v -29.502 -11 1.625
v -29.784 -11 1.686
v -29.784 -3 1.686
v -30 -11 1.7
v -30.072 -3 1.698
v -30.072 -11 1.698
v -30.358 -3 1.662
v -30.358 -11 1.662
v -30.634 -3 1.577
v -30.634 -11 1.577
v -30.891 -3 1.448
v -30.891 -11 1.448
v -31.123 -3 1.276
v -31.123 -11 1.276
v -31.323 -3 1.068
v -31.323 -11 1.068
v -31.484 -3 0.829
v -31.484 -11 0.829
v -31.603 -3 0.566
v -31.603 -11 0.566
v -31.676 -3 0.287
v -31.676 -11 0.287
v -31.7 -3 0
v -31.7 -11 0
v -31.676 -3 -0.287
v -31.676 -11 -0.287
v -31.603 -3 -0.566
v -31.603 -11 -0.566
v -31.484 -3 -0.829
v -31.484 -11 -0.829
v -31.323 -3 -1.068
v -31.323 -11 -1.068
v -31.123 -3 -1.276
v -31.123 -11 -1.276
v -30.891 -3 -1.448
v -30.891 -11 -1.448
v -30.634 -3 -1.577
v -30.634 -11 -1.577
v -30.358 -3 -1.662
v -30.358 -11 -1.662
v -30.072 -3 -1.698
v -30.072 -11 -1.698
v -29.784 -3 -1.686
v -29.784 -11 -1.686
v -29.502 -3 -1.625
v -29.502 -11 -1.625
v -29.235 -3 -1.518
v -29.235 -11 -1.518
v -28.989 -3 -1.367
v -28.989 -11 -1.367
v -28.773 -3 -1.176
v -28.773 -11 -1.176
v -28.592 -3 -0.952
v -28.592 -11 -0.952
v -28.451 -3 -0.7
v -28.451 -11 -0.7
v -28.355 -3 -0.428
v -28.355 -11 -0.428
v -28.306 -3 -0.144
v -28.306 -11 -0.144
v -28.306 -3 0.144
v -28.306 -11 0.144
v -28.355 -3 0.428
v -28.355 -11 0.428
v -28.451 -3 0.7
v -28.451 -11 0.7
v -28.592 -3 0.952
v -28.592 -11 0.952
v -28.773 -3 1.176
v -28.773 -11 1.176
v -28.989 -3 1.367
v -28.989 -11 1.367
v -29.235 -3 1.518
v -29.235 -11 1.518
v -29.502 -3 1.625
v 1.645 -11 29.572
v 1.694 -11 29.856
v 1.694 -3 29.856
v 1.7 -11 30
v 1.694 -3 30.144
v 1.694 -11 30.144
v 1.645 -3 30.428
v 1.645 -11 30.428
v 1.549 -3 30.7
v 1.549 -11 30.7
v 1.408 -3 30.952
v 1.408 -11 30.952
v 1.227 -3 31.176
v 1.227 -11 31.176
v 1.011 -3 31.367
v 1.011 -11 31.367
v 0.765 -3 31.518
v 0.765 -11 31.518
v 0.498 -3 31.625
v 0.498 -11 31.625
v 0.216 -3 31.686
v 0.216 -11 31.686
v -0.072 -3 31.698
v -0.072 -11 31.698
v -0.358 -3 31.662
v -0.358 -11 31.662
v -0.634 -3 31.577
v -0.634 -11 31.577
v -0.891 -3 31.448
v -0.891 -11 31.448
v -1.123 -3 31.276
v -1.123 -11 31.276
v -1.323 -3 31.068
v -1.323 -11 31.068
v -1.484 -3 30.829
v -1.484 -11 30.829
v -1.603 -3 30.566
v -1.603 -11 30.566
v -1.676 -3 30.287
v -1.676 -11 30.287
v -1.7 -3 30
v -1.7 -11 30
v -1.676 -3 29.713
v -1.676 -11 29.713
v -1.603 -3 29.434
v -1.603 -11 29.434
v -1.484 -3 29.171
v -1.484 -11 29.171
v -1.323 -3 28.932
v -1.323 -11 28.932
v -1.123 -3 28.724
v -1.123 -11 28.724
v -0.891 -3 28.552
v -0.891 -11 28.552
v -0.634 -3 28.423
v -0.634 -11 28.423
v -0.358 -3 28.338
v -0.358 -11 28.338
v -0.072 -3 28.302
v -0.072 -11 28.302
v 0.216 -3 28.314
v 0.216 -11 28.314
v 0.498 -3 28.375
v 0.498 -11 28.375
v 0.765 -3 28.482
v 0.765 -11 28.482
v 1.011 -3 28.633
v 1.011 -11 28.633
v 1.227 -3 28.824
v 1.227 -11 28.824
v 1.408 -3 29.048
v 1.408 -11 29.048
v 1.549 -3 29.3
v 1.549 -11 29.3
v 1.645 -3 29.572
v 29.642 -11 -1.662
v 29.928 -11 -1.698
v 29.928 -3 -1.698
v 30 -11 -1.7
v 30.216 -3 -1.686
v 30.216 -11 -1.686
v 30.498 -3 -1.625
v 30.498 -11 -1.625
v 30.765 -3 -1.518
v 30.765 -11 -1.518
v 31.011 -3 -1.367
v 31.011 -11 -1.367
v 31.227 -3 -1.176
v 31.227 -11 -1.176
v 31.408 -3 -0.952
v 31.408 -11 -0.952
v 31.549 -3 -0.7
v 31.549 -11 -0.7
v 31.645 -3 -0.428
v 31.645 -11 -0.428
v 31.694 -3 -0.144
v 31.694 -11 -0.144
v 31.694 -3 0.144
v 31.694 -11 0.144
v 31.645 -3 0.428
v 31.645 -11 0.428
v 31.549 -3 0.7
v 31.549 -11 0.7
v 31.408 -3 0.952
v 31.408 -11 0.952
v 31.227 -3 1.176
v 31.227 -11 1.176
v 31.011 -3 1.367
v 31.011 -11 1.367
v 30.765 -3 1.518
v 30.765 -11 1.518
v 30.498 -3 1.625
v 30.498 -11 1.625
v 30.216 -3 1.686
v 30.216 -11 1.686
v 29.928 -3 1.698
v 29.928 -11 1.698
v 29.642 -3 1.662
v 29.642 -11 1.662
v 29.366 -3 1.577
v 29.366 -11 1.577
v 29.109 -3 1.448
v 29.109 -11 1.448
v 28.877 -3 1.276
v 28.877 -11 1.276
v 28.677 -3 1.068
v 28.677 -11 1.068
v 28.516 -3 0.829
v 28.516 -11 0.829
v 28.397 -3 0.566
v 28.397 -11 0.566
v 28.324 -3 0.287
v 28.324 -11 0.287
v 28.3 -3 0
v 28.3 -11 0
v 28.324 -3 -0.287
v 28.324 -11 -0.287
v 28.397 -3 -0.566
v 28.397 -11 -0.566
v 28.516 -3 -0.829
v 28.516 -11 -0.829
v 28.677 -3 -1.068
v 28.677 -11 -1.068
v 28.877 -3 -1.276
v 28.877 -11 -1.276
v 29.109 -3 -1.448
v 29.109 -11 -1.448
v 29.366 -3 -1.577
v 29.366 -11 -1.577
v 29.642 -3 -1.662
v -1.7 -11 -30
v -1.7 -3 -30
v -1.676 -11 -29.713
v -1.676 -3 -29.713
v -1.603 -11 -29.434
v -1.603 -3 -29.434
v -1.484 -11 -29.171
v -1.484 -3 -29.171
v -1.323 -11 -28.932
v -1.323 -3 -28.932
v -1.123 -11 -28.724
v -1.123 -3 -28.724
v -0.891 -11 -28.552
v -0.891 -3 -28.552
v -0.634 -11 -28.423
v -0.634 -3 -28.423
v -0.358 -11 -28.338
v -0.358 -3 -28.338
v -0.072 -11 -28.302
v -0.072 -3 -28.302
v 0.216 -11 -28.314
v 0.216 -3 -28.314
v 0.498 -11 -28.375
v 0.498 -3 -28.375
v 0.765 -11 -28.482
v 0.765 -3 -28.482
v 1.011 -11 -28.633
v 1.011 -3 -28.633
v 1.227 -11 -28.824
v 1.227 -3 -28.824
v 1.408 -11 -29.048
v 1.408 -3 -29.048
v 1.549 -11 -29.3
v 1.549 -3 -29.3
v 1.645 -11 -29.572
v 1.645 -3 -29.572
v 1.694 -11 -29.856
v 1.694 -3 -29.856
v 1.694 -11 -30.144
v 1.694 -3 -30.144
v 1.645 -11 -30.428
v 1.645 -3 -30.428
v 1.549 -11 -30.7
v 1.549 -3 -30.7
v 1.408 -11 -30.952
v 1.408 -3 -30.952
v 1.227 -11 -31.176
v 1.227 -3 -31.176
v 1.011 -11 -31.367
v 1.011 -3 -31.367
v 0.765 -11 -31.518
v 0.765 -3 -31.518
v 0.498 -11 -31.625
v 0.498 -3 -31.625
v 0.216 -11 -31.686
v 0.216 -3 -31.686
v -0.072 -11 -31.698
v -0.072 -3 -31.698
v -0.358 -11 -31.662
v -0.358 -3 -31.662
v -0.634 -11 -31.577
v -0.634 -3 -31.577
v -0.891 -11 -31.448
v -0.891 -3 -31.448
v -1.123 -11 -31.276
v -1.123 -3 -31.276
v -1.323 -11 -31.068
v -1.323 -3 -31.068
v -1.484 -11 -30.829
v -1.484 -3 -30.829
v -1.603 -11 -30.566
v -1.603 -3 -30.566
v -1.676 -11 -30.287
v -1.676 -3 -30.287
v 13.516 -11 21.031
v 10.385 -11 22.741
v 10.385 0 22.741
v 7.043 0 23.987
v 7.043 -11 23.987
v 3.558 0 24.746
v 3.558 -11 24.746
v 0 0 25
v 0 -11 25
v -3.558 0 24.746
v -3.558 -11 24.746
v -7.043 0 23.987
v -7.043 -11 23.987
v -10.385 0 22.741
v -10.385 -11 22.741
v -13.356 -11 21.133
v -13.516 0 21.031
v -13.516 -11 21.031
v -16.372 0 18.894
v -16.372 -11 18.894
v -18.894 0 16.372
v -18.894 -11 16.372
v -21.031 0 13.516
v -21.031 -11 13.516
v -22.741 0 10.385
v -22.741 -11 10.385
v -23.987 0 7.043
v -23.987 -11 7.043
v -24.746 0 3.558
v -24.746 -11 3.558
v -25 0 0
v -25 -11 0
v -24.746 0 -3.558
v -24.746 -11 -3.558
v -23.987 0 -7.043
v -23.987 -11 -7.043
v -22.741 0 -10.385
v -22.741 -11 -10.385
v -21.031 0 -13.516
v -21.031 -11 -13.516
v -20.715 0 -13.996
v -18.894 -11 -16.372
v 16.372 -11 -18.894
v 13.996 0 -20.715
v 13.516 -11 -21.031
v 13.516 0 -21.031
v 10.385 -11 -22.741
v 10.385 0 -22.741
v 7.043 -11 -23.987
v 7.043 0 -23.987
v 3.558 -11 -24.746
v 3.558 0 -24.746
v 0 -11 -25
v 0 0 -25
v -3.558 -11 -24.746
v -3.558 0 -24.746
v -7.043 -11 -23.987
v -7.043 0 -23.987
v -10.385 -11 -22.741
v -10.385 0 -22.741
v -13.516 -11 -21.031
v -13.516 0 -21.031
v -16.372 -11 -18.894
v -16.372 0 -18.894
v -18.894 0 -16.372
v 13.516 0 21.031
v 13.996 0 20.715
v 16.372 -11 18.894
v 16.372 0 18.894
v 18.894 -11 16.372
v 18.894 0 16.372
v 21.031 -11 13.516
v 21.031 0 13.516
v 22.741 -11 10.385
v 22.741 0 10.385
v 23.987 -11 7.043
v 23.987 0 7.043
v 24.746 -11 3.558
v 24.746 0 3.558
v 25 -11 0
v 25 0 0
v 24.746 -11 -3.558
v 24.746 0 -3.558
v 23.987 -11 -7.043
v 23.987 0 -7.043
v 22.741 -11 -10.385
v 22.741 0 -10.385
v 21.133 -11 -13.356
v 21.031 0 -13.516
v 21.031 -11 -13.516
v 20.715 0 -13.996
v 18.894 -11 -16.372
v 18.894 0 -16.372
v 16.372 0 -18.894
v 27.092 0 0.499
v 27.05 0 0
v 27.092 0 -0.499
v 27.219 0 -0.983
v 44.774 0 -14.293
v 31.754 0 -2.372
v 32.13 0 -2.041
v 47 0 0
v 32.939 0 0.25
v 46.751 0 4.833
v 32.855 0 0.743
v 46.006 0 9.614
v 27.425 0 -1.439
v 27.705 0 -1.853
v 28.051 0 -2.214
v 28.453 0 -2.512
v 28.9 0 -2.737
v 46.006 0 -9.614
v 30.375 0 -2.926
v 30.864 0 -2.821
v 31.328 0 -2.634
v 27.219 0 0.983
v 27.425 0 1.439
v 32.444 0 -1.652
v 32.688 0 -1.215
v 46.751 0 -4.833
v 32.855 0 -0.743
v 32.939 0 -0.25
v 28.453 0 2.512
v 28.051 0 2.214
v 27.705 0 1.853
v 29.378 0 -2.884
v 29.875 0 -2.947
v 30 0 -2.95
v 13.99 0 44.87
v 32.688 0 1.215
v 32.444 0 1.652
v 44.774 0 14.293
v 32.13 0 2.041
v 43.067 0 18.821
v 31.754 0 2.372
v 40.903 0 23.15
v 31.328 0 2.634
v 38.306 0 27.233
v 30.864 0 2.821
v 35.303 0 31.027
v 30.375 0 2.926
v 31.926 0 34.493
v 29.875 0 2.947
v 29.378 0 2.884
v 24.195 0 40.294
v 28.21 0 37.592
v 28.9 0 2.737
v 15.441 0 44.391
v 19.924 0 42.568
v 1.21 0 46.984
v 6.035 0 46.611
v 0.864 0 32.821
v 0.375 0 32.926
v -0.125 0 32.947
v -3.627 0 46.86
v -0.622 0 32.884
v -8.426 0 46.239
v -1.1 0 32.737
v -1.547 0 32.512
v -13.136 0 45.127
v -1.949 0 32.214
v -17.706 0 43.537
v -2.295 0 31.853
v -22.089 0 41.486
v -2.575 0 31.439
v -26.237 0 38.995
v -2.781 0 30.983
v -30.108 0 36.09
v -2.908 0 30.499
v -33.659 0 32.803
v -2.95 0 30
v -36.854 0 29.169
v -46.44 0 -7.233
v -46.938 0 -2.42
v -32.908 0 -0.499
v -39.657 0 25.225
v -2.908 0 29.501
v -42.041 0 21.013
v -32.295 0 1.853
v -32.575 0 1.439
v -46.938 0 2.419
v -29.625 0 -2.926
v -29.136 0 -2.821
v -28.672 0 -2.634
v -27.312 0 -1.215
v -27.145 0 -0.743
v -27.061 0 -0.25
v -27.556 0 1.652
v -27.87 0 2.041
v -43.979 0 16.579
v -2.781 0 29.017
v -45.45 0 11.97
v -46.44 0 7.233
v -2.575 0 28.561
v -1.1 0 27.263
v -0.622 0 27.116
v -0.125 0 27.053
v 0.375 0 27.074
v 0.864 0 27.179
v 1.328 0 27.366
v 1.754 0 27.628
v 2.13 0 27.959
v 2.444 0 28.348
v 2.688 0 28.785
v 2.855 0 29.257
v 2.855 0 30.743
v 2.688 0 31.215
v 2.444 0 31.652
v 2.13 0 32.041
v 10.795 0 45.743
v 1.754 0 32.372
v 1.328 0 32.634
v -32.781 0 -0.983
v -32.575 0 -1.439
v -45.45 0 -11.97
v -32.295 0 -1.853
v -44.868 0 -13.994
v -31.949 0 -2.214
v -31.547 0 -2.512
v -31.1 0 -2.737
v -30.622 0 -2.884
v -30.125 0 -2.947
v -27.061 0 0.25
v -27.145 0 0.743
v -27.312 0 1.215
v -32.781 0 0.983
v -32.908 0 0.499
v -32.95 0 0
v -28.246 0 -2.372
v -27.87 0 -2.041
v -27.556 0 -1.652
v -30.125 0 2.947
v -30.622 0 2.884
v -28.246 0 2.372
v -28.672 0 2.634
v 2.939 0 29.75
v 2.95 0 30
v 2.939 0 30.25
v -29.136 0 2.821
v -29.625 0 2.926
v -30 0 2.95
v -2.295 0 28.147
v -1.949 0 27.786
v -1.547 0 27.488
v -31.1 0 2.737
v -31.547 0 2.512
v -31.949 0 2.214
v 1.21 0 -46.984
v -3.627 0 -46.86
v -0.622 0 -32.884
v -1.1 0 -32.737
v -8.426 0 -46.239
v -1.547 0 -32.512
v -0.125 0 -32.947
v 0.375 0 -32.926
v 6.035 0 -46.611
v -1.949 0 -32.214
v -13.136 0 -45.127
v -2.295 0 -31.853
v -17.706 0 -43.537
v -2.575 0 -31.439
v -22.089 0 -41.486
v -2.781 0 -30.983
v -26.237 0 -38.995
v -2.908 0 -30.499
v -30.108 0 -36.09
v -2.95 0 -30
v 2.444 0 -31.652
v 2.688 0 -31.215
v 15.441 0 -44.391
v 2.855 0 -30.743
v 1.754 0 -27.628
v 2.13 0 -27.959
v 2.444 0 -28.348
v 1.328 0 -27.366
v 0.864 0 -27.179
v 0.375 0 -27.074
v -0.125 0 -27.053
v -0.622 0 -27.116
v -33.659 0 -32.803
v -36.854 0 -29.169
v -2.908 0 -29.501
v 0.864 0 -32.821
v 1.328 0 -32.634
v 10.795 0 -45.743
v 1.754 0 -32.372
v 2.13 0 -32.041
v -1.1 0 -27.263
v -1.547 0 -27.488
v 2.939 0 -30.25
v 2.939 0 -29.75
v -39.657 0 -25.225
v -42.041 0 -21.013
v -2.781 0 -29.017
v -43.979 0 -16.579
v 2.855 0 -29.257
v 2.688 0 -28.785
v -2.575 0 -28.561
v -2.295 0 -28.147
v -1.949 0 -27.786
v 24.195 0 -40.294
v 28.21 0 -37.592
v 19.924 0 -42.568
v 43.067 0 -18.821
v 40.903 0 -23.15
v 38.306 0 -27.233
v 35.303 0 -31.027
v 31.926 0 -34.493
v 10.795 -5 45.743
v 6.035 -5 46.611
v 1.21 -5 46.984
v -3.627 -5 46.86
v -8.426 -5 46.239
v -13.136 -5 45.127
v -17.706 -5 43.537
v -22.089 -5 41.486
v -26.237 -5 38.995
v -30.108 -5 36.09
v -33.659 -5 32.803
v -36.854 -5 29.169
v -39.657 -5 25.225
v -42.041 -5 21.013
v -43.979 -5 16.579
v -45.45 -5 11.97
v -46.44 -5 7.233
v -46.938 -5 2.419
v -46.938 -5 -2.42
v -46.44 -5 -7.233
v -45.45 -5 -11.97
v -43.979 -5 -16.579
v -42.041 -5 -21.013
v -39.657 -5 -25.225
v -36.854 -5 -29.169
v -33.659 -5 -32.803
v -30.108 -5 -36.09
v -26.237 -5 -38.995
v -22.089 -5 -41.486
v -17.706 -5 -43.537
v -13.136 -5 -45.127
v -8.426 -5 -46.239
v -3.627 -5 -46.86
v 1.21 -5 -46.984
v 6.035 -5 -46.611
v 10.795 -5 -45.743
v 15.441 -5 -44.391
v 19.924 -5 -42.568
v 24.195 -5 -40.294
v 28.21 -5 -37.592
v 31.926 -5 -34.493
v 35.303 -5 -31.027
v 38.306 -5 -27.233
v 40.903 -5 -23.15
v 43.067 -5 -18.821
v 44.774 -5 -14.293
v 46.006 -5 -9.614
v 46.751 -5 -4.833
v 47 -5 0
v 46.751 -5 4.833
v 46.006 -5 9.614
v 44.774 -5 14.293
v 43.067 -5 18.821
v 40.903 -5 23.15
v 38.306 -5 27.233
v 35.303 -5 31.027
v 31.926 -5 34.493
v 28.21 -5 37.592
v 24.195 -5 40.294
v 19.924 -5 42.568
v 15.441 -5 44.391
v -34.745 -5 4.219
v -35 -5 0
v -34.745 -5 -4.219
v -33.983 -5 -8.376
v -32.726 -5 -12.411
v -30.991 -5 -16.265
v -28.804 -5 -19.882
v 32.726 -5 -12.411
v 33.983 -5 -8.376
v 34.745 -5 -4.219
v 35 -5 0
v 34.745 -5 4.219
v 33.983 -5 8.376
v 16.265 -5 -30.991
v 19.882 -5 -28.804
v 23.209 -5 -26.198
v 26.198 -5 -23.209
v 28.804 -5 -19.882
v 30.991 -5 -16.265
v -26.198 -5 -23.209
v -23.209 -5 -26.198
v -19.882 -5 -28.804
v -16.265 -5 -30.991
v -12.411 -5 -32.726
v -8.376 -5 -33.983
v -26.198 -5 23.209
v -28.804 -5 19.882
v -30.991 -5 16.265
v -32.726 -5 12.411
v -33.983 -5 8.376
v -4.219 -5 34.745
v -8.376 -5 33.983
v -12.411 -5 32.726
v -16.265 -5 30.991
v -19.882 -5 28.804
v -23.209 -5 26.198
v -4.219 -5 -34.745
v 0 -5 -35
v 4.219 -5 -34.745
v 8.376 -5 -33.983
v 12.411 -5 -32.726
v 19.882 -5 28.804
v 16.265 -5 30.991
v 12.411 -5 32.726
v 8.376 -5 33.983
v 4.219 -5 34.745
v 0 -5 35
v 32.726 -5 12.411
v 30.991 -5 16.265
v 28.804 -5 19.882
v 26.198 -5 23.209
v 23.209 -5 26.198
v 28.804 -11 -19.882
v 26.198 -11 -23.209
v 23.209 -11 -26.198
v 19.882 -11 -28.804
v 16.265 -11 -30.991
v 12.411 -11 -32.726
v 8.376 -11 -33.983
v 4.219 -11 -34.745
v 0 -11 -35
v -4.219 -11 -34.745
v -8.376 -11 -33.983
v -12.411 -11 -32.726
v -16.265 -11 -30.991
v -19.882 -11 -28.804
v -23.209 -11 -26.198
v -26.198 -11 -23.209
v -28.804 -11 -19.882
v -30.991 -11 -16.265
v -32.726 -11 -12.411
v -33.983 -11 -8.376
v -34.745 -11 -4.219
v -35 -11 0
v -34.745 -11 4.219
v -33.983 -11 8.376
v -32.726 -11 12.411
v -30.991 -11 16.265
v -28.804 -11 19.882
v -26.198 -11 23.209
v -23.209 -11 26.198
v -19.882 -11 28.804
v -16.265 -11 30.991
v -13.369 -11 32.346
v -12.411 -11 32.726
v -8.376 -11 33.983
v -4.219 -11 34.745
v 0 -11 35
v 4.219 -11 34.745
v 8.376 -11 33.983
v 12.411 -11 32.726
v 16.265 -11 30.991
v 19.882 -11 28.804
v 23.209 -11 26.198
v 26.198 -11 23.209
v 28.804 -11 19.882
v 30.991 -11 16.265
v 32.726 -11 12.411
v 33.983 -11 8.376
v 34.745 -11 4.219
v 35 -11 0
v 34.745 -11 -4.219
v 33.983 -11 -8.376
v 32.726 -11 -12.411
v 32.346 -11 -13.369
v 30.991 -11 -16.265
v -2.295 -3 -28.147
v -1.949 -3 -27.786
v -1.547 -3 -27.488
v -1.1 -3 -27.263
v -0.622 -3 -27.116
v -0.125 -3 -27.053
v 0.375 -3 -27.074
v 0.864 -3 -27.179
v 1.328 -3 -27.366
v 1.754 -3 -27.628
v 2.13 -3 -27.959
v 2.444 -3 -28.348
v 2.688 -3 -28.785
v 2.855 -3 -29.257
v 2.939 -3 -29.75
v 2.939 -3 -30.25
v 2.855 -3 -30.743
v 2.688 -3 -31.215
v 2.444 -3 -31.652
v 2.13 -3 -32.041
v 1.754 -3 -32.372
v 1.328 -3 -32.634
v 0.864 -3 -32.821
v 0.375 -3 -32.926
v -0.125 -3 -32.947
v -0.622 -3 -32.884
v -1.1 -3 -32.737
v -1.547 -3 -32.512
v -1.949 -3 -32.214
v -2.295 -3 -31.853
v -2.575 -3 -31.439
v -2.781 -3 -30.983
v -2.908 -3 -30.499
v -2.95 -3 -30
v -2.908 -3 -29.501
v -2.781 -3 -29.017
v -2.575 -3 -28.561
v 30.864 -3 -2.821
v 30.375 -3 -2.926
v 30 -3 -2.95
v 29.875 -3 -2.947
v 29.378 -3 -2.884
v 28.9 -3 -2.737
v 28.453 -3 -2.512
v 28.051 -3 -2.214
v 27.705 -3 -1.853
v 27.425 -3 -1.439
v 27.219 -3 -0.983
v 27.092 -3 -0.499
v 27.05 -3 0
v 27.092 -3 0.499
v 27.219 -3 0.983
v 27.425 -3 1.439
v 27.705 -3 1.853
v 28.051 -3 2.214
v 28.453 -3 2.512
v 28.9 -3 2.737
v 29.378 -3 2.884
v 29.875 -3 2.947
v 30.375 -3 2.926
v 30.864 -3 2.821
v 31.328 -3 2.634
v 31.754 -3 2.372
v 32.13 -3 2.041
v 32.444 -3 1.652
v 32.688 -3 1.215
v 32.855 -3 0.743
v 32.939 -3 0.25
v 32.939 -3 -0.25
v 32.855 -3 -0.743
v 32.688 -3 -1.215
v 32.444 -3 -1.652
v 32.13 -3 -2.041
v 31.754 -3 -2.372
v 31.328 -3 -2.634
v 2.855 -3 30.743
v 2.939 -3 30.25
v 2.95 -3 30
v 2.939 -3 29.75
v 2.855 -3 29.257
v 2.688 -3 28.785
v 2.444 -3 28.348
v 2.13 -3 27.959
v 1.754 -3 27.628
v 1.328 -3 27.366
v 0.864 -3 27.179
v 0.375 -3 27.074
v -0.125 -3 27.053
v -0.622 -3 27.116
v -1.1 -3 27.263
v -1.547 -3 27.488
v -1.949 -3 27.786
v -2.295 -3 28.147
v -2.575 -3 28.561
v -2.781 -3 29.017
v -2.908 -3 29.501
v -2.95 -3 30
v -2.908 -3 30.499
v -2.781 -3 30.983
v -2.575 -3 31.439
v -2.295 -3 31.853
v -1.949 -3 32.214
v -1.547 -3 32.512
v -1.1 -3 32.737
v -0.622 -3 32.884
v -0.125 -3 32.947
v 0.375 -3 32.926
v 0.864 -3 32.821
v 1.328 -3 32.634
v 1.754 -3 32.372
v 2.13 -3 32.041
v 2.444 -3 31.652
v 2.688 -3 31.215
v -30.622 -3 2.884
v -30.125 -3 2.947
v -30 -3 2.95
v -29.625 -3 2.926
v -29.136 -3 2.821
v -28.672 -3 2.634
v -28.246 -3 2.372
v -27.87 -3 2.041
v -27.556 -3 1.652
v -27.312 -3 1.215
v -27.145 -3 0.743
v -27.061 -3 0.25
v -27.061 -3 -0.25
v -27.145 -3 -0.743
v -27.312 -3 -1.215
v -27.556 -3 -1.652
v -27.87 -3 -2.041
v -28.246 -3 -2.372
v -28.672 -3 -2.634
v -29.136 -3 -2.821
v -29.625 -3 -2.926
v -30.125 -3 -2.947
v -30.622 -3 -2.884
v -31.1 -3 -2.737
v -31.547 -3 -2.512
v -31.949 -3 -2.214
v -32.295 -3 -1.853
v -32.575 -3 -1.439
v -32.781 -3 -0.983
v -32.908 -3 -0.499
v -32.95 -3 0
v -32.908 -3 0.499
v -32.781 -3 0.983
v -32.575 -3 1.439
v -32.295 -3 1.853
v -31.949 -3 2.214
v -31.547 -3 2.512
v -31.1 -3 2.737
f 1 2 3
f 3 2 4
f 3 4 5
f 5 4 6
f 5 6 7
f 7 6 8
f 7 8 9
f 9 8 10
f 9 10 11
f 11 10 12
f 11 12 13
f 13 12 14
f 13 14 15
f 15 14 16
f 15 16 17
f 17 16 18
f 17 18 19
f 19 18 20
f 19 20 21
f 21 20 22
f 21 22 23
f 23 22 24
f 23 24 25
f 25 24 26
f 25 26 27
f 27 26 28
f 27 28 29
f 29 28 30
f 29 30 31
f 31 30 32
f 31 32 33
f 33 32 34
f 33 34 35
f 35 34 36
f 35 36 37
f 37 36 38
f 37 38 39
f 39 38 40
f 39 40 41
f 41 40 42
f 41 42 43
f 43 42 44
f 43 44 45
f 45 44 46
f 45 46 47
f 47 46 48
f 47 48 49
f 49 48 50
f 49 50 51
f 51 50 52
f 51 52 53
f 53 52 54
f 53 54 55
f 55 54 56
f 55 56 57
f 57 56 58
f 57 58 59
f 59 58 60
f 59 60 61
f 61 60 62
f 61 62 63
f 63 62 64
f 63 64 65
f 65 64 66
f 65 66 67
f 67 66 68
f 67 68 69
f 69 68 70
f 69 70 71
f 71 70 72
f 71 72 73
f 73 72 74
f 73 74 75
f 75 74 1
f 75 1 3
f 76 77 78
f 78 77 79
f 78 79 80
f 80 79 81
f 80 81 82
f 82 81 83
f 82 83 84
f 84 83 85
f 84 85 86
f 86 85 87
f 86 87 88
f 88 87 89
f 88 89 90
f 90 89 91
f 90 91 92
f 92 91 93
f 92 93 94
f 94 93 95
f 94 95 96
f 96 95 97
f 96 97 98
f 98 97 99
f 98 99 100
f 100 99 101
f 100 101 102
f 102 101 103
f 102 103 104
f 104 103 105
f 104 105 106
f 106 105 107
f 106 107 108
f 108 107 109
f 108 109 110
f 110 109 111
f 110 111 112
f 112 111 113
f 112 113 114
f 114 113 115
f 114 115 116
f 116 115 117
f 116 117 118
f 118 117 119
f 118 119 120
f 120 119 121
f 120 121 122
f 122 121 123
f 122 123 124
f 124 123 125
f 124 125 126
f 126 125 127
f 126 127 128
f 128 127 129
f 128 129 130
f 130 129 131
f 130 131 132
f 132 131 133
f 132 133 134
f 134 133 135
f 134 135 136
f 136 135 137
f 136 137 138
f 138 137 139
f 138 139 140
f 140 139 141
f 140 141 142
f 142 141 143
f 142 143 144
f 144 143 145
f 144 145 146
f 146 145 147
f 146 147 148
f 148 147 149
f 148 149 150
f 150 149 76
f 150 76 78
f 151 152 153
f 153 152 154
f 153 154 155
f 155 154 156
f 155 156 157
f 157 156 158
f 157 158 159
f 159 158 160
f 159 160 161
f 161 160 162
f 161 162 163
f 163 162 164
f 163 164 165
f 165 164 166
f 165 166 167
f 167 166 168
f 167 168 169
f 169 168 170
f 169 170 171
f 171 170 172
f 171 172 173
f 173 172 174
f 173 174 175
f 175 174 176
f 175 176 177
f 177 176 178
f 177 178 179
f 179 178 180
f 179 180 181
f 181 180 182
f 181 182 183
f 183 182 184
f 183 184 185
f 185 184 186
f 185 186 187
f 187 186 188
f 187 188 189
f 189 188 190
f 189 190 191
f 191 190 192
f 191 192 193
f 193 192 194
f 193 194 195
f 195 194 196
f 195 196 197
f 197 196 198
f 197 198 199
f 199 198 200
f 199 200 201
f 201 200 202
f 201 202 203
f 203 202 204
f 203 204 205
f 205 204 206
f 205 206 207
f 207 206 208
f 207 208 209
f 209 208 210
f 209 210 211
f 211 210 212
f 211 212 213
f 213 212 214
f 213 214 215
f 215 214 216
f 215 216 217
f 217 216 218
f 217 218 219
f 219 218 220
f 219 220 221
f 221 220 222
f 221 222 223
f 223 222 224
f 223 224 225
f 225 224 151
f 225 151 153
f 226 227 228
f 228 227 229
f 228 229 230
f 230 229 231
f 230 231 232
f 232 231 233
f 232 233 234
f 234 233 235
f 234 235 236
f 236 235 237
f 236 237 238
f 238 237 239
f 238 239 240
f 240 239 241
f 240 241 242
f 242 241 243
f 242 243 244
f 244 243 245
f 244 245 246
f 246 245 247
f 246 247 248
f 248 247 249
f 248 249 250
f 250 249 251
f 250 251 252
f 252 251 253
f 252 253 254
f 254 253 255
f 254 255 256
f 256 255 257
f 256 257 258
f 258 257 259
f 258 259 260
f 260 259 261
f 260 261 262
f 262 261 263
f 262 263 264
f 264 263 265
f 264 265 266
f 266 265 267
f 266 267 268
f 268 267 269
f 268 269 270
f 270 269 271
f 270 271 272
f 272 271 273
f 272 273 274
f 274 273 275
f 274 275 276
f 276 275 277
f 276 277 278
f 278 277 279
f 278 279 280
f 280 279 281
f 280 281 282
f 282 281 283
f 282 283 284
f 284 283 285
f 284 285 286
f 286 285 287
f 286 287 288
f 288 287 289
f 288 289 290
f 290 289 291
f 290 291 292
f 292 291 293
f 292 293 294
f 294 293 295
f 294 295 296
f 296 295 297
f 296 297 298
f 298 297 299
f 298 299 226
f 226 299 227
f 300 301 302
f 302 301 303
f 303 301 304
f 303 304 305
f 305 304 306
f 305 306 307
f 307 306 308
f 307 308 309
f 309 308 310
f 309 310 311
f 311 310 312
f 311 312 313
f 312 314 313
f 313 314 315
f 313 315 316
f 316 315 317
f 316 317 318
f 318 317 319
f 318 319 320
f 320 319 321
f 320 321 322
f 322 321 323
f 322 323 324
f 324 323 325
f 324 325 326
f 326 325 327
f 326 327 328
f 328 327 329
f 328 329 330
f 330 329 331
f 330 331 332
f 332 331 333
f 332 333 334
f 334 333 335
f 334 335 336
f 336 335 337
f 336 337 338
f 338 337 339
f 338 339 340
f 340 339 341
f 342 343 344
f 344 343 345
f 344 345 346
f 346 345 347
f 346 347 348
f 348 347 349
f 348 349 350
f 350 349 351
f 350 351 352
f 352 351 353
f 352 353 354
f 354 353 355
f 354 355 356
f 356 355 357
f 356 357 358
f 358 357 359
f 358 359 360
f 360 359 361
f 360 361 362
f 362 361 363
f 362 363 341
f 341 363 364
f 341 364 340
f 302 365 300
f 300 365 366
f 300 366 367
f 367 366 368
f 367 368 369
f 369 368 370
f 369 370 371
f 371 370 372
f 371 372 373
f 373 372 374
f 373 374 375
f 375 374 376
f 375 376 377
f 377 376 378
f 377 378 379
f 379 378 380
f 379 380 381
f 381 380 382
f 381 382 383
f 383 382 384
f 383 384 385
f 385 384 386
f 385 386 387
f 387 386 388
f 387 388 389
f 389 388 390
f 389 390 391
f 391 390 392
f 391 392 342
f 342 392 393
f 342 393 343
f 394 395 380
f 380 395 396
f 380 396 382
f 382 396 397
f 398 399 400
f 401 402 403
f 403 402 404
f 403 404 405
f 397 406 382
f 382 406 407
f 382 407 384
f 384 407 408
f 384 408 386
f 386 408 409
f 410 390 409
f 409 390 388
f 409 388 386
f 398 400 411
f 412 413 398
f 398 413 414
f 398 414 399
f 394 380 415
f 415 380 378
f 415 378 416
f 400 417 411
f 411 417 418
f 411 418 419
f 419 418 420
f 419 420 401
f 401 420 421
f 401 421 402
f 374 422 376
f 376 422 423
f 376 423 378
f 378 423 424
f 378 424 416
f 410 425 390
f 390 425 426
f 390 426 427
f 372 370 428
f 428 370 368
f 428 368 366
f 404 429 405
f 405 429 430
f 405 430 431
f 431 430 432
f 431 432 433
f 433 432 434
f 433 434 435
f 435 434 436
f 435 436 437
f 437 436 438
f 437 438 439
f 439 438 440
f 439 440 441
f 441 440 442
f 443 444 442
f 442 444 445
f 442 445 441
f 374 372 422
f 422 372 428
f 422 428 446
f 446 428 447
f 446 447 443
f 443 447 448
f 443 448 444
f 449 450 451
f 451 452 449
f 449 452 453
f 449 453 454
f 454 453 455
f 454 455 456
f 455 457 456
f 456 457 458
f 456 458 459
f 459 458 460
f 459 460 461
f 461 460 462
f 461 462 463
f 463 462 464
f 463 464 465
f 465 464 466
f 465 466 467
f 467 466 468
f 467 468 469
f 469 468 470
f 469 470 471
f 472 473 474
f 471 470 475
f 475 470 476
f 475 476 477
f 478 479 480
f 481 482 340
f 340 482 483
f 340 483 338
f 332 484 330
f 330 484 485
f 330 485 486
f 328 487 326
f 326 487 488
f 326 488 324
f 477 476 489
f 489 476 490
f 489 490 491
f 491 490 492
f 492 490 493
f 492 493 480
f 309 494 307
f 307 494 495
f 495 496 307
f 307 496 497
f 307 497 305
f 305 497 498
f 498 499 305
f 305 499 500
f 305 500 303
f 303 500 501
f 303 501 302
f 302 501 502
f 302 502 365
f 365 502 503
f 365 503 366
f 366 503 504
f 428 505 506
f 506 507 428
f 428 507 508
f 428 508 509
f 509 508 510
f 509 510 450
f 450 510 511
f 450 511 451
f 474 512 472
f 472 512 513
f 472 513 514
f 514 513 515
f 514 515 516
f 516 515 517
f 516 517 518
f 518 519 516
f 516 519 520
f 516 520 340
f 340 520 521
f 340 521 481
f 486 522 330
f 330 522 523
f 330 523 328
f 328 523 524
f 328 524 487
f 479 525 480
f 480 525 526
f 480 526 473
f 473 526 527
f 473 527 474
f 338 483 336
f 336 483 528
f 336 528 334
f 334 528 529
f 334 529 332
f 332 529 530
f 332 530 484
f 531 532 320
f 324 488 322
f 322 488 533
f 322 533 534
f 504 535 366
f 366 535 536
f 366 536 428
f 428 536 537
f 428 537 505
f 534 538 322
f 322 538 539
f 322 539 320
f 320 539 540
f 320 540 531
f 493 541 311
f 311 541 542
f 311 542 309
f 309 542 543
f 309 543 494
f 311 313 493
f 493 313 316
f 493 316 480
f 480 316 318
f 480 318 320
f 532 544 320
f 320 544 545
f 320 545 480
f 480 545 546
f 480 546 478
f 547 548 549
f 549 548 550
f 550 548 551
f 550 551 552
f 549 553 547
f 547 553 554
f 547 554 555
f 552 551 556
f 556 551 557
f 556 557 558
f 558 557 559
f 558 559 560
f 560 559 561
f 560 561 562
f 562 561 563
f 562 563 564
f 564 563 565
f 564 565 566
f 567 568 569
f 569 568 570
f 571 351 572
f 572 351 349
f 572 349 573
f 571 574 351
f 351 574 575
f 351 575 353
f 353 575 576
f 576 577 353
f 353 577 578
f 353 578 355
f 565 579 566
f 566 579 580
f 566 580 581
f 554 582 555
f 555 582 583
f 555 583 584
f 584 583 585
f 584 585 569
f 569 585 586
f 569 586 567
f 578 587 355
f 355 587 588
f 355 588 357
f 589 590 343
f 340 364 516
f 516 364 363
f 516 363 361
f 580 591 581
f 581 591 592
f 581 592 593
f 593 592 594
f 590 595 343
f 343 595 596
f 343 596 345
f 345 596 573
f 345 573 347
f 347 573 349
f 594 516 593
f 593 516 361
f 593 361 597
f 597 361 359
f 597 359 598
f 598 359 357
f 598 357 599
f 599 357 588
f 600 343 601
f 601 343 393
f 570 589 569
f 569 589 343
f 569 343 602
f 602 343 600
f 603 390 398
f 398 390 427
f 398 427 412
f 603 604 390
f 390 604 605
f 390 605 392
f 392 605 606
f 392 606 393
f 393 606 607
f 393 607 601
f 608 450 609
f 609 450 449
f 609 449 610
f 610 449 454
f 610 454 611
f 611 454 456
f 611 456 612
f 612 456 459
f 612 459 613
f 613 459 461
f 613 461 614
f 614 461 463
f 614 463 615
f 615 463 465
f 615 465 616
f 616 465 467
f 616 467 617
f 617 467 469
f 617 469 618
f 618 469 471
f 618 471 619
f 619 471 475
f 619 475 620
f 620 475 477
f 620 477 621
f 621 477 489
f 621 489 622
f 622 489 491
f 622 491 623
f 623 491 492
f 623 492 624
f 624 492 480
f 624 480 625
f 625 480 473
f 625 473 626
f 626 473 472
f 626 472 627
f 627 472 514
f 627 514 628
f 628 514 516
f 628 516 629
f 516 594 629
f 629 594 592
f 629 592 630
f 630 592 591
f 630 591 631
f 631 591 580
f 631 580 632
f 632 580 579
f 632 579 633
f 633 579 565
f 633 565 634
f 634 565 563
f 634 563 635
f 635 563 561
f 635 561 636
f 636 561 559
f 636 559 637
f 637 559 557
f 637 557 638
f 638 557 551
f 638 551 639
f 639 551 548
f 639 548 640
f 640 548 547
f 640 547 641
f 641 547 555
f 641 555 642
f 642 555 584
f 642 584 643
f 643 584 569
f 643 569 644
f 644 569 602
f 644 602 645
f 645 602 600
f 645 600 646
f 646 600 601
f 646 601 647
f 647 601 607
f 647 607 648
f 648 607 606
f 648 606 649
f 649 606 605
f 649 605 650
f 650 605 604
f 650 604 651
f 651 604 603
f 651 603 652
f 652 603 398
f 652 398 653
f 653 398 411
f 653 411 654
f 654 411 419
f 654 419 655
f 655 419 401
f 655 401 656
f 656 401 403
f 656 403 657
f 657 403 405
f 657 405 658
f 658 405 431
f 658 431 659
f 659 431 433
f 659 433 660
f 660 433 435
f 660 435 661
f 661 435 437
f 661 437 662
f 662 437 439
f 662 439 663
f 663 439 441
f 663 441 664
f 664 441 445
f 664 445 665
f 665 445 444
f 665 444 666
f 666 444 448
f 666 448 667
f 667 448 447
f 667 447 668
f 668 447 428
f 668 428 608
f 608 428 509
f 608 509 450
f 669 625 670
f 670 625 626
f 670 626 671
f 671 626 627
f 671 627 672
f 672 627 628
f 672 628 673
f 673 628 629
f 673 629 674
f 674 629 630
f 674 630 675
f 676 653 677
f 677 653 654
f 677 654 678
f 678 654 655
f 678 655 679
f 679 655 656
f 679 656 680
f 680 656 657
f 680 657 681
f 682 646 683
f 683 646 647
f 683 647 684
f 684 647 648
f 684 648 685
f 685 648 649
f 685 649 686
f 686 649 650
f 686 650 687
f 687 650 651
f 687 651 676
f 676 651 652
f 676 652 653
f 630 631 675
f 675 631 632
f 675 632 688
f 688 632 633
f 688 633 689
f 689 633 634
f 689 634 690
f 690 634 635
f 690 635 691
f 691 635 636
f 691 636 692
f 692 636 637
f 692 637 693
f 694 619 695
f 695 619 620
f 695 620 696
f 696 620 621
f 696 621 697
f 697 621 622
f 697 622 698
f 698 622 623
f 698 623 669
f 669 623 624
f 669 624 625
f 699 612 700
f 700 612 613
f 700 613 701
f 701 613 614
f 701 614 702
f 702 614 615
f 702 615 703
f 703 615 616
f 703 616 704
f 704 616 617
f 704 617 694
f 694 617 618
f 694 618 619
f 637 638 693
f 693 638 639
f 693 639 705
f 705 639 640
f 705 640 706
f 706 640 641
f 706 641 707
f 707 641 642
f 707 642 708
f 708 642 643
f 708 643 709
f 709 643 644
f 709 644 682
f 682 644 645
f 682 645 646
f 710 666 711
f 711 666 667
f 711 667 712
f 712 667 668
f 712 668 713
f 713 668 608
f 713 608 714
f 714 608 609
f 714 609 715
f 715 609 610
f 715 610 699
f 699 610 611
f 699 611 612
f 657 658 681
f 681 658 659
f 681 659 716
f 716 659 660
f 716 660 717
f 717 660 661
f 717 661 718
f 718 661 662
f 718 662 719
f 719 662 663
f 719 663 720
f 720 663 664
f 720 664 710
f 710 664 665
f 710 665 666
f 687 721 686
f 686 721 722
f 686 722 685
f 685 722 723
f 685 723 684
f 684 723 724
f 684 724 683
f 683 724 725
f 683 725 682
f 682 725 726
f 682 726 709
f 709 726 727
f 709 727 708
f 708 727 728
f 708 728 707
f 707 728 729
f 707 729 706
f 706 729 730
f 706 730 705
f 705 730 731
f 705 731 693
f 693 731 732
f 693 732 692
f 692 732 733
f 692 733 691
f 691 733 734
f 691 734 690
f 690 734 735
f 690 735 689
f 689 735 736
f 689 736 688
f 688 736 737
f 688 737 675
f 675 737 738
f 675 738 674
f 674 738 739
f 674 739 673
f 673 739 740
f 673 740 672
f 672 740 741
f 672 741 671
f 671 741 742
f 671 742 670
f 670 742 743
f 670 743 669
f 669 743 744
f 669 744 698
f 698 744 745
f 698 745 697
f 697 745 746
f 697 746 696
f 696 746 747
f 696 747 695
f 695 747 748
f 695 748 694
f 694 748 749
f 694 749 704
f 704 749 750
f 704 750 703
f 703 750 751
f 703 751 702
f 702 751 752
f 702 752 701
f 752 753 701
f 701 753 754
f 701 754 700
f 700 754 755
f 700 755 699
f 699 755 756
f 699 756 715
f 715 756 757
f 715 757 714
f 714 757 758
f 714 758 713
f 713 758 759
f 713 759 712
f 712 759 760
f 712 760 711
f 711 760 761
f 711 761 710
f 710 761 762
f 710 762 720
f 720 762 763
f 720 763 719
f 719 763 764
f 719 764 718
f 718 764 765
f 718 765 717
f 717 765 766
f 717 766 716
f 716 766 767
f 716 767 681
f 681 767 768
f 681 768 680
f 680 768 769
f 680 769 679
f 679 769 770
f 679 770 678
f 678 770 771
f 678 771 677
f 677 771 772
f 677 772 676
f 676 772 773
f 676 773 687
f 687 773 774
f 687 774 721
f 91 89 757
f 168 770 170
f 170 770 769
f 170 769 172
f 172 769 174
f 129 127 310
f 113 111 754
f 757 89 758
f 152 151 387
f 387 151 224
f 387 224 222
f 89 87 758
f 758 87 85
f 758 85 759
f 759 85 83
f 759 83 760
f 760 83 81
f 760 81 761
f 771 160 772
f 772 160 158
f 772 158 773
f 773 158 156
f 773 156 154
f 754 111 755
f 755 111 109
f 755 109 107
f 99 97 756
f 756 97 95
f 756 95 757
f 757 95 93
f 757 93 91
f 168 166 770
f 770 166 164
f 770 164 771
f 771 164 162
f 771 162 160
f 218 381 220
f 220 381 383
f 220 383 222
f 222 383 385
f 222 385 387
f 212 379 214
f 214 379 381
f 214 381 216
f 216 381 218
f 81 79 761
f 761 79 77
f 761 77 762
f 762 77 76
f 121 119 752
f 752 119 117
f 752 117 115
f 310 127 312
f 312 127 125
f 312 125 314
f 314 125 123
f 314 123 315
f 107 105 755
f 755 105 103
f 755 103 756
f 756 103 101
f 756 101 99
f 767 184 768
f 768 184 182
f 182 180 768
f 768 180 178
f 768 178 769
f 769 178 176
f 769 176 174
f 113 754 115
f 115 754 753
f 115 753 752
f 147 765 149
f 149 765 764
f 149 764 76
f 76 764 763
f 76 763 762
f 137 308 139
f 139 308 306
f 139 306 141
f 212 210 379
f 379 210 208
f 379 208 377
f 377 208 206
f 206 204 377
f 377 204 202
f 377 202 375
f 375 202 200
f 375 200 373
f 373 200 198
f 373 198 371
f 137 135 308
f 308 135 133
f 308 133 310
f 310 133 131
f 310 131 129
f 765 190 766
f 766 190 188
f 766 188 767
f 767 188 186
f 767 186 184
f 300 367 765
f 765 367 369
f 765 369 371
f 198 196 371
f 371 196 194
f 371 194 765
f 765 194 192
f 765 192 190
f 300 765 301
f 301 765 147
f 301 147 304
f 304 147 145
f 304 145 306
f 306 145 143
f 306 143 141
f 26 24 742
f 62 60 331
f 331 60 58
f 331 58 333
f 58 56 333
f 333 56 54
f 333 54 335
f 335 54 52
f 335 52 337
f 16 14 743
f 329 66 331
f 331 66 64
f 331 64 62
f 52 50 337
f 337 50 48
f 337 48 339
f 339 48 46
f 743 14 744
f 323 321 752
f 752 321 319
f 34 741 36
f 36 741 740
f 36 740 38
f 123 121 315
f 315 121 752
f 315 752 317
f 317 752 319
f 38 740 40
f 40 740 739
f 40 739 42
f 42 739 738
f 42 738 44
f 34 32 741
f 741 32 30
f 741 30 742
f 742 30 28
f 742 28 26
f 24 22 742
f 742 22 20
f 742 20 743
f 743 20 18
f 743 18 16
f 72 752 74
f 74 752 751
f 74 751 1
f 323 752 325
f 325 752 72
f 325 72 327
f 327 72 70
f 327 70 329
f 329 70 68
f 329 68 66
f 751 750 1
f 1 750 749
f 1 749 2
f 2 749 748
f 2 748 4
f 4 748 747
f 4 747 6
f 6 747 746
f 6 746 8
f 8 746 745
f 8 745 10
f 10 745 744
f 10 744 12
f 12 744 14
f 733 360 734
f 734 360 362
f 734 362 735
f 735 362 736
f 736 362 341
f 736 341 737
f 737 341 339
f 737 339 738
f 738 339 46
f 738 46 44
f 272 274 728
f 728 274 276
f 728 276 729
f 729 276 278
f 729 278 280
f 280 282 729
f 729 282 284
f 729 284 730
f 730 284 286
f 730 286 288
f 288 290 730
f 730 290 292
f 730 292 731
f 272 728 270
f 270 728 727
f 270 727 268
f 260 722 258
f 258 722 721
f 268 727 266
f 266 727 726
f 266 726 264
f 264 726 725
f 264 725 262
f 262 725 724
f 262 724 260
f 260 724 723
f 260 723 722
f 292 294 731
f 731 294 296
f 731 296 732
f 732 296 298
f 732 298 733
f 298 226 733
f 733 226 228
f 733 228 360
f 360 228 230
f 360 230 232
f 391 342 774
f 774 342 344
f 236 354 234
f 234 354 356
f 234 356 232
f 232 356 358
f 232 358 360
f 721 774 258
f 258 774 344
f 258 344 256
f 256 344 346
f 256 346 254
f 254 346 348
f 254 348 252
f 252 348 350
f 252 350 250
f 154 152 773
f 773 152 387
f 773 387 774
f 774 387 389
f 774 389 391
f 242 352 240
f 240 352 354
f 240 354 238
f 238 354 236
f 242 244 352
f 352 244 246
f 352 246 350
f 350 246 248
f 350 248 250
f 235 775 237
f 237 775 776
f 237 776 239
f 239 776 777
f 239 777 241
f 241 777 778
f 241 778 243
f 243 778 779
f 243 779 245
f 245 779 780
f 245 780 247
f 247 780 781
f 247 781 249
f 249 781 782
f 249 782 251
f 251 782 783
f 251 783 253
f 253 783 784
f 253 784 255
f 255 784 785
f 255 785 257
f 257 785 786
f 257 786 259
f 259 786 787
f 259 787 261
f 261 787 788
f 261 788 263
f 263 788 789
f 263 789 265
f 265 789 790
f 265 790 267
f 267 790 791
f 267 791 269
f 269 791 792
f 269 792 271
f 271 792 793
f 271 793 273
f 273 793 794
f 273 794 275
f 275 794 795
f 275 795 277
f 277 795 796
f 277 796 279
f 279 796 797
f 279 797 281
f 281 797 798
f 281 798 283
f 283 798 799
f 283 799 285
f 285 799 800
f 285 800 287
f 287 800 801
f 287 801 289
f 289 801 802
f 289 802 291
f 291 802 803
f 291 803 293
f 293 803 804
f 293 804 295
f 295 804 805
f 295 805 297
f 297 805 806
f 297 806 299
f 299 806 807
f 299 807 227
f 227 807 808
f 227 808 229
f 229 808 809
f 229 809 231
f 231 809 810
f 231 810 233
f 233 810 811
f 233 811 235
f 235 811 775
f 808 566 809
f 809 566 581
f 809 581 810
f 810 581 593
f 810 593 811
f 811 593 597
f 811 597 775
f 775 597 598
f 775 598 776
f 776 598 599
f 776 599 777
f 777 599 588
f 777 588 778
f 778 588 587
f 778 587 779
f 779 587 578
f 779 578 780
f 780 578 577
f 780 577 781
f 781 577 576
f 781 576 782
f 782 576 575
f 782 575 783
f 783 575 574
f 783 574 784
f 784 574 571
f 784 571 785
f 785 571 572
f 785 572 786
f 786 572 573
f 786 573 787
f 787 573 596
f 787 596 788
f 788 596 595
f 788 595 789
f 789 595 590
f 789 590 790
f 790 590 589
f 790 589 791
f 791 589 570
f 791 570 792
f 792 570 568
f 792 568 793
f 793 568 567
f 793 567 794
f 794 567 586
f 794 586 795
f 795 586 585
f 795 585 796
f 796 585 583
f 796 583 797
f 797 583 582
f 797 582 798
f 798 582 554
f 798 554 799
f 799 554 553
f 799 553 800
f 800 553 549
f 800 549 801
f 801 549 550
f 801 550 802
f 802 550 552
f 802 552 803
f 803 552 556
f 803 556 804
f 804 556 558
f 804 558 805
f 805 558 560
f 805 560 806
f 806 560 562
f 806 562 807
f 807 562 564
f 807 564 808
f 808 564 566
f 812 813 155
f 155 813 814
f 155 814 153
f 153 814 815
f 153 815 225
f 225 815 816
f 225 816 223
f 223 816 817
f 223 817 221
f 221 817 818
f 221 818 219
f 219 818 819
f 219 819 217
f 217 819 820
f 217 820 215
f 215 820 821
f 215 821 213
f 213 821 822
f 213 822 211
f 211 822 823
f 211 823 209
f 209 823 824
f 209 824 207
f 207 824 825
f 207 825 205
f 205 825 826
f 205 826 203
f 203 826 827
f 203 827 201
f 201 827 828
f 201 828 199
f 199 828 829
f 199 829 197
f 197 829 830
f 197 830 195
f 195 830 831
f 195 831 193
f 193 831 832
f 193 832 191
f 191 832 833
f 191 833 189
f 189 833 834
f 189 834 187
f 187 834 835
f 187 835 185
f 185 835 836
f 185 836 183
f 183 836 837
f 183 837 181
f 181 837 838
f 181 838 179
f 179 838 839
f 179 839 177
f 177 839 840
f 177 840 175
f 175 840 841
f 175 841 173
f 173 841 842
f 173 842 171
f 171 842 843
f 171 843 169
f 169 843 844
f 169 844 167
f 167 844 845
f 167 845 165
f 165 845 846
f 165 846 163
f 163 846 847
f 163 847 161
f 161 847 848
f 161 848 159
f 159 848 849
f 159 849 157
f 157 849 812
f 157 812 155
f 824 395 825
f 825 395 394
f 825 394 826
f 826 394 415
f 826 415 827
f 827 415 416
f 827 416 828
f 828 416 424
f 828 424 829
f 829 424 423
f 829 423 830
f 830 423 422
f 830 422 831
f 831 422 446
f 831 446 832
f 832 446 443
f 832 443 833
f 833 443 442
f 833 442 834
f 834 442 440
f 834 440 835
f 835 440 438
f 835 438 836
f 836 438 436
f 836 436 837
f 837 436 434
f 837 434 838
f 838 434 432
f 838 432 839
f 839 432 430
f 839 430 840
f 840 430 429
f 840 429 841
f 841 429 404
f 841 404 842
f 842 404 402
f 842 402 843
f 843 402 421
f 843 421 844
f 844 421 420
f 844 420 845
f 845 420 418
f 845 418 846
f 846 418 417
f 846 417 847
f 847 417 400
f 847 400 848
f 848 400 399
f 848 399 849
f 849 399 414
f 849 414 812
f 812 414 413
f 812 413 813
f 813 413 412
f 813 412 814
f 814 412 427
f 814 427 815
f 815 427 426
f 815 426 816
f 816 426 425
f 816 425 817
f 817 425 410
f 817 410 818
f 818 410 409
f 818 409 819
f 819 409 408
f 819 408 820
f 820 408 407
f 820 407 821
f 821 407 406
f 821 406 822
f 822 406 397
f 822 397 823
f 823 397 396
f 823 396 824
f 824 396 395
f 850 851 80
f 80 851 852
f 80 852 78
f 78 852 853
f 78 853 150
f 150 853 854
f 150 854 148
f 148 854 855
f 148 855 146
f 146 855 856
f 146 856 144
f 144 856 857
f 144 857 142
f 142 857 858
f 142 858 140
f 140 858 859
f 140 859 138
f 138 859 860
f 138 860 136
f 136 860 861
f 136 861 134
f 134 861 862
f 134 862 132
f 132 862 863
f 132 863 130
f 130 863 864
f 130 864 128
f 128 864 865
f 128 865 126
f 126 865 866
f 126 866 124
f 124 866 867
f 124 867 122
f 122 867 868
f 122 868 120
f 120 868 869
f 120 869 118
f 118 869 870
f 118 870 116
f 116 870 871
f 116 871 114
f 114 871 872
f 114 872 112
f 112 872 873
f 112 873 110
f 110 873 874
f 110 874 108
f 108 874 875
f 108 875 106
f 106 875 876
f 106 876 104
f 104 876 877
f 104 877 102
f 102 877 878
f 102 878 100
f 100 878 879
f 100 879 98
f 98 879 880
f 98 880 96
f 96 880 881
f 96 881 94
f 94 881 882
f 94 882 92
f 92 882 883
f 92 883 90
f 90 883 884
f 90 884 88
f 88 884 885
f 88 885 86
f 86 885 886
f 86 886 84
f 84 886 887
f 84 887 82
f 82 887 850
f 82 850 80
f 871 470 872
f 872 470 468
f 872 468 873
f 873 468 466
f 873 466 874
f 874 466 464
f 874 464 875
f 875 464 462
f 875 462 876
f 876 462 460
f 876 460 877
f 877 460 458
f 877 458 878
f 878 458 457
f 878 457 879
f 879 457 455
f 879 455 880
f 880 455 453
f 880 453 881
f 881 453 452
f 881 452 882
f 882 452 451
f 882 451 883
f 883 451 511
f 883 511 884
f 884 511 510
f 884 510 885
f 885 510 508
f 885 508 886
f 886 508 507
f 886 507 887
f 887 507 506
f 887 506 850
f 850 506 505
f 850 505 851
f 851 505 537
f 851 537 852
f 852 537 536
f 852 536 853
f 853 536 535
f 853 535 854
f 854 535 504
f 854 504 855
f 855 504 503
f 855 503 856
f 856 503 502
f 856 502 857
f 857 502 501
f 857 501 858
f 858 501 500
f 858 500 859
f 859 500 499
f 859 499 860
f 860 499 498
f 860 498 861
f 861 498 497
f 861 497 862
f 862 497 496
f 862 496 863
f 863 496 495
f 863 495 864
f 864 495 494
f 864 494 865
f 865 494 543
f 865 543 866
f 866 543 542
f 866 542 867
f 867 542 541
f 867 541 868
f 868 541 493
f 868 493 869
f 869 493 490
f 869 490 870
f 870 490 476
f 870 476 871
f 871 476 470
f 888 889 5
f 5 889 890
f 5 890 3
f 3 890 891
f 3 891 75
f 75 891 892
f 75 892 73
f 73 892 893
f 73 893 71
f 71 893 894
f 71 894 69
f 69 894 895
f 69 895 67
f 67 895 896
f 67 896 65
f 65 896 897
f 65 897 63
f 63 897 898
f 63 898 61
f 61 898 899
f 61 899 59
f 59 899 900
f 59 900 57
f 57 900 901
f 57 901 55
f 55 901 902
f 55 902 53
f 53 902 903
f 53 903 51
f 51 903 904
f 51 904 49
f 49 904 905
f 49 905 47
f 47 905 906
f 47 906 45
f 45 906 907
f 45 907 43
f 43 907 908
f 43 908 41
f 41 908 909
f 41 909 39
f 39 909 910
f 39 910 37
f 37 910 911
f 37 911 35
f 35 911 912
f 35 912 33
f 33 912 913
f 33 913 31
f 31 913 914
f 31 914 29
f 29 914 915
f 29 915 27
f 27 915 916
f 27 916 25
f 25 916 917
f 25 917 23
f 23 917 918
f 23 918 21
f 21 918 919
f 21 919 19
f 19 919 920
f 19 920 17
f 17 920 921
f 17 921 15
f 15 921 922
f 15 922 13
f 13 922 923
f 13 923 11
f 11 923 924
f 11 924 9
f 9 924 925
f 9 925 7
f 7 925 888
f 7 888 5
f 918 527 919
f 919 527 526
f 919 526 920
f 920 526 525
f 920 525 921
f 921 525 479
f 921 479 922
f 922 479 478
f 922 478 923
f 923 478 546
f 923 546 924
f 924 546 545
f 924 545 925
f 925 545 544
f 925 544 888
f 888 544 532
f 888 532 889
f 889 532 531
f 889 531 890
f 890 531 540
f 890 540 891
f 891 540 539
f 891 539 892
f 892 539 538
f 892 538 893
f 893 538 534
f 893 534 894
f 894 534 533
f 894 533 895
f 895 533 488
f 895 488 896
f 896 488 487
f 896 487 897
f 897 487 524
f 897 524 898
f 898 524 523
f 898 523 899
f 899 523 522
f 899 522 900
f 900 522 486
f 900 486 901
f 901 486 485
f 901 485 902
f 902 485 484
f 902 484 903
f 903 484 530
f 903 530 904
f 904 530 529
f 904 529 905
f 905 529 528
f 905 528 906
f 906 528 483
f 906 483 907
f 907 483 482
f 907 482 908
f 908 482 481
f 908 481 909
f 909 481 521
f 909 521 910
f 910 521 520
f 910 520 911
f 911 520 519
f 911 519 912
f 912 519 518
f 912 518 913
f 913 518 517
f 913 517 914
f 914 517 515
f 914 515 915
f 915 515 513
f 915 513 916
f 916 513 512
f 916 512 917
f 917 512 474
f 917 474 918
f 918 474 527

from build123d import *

# Parameters (mm, degrees)
SKETCH3_R          = 1.7
CUT_EXTRUDE1_DEPTH = 68.372101051
CIRPATTERN1_COUNT  = 4
SKETCH4_R          = 2.95
CUT_EXTRUDE2_DEPTH = 3
CIRPATTERN2_COUNT  = 4


with BuildPart() as part:
    # Sketch1 → Revolve1 (revolve)
    with BuildSketch(Plane.XY):
        Polygon((25, 0), (47, 0), (47, -5), (35, -5), (35, -11), (25, -11), align=None)
    revolve(axis=Axis((0, -62.255842479, 0), (0, 1, 0)))

    # Sketch3 → Cut-Extrude1 (cut, symmetric)
    with BuildSketch(Plane(origin=(0, 0, 0), x_dir=(1, 0, 0), z_dir=(0, 1, 0))):
        with Locations(Location((0, 30, 0), (0, 0, 180))):
            Circle(SKETCH3_R)
    cut_extrude1 = extrude(amount=CUT_EXTRUDE1_DEPTH, both=True, mode=Mode.SUBTRACT)

    # CirPattern1: Cut-Extrude1 ×4 about axis
    cirpattern1_axis = Axis((0, 0, 0), (0, 1, 0))
    for i in range(1, CIRPATTERN1_COUNT):
        add(cut_extrude1.rotate(cirpattern1_axis, i * 360 / CIRPATTERN1_COUNT), mode=Mode.SUBTRACT)

    # Sketch4 → Cut-Extrude2 (cut)
    with BuildSketch(Plane(origin=(0, 0, 0), x_dir=(1, 0, 0), z_dir=(0, 1, 0))):
        with Locations(Location((0, 30, 0), (0, 0, 180))):
            Circle(SKETCH4_R)
    cut_extrude2 = extrude(amount=-CUT_EXTRUDE2_DEPTH, mode=Mode.SUBTRACT)

    # CirPattern2: Cut-Extrude2 ×4 about axis
    cirpattern2_axis = Axis((0, 0, 0), (0, 1, 0))
    for i in range(1, CIRPATTERN2_COUNT):
        add(cut_extrude2.rotate(cirpattern2_axis, i * 360 / CIRPATTERN2_COUNT), mode=Mode.SUBTRACT)


solid = part.part
